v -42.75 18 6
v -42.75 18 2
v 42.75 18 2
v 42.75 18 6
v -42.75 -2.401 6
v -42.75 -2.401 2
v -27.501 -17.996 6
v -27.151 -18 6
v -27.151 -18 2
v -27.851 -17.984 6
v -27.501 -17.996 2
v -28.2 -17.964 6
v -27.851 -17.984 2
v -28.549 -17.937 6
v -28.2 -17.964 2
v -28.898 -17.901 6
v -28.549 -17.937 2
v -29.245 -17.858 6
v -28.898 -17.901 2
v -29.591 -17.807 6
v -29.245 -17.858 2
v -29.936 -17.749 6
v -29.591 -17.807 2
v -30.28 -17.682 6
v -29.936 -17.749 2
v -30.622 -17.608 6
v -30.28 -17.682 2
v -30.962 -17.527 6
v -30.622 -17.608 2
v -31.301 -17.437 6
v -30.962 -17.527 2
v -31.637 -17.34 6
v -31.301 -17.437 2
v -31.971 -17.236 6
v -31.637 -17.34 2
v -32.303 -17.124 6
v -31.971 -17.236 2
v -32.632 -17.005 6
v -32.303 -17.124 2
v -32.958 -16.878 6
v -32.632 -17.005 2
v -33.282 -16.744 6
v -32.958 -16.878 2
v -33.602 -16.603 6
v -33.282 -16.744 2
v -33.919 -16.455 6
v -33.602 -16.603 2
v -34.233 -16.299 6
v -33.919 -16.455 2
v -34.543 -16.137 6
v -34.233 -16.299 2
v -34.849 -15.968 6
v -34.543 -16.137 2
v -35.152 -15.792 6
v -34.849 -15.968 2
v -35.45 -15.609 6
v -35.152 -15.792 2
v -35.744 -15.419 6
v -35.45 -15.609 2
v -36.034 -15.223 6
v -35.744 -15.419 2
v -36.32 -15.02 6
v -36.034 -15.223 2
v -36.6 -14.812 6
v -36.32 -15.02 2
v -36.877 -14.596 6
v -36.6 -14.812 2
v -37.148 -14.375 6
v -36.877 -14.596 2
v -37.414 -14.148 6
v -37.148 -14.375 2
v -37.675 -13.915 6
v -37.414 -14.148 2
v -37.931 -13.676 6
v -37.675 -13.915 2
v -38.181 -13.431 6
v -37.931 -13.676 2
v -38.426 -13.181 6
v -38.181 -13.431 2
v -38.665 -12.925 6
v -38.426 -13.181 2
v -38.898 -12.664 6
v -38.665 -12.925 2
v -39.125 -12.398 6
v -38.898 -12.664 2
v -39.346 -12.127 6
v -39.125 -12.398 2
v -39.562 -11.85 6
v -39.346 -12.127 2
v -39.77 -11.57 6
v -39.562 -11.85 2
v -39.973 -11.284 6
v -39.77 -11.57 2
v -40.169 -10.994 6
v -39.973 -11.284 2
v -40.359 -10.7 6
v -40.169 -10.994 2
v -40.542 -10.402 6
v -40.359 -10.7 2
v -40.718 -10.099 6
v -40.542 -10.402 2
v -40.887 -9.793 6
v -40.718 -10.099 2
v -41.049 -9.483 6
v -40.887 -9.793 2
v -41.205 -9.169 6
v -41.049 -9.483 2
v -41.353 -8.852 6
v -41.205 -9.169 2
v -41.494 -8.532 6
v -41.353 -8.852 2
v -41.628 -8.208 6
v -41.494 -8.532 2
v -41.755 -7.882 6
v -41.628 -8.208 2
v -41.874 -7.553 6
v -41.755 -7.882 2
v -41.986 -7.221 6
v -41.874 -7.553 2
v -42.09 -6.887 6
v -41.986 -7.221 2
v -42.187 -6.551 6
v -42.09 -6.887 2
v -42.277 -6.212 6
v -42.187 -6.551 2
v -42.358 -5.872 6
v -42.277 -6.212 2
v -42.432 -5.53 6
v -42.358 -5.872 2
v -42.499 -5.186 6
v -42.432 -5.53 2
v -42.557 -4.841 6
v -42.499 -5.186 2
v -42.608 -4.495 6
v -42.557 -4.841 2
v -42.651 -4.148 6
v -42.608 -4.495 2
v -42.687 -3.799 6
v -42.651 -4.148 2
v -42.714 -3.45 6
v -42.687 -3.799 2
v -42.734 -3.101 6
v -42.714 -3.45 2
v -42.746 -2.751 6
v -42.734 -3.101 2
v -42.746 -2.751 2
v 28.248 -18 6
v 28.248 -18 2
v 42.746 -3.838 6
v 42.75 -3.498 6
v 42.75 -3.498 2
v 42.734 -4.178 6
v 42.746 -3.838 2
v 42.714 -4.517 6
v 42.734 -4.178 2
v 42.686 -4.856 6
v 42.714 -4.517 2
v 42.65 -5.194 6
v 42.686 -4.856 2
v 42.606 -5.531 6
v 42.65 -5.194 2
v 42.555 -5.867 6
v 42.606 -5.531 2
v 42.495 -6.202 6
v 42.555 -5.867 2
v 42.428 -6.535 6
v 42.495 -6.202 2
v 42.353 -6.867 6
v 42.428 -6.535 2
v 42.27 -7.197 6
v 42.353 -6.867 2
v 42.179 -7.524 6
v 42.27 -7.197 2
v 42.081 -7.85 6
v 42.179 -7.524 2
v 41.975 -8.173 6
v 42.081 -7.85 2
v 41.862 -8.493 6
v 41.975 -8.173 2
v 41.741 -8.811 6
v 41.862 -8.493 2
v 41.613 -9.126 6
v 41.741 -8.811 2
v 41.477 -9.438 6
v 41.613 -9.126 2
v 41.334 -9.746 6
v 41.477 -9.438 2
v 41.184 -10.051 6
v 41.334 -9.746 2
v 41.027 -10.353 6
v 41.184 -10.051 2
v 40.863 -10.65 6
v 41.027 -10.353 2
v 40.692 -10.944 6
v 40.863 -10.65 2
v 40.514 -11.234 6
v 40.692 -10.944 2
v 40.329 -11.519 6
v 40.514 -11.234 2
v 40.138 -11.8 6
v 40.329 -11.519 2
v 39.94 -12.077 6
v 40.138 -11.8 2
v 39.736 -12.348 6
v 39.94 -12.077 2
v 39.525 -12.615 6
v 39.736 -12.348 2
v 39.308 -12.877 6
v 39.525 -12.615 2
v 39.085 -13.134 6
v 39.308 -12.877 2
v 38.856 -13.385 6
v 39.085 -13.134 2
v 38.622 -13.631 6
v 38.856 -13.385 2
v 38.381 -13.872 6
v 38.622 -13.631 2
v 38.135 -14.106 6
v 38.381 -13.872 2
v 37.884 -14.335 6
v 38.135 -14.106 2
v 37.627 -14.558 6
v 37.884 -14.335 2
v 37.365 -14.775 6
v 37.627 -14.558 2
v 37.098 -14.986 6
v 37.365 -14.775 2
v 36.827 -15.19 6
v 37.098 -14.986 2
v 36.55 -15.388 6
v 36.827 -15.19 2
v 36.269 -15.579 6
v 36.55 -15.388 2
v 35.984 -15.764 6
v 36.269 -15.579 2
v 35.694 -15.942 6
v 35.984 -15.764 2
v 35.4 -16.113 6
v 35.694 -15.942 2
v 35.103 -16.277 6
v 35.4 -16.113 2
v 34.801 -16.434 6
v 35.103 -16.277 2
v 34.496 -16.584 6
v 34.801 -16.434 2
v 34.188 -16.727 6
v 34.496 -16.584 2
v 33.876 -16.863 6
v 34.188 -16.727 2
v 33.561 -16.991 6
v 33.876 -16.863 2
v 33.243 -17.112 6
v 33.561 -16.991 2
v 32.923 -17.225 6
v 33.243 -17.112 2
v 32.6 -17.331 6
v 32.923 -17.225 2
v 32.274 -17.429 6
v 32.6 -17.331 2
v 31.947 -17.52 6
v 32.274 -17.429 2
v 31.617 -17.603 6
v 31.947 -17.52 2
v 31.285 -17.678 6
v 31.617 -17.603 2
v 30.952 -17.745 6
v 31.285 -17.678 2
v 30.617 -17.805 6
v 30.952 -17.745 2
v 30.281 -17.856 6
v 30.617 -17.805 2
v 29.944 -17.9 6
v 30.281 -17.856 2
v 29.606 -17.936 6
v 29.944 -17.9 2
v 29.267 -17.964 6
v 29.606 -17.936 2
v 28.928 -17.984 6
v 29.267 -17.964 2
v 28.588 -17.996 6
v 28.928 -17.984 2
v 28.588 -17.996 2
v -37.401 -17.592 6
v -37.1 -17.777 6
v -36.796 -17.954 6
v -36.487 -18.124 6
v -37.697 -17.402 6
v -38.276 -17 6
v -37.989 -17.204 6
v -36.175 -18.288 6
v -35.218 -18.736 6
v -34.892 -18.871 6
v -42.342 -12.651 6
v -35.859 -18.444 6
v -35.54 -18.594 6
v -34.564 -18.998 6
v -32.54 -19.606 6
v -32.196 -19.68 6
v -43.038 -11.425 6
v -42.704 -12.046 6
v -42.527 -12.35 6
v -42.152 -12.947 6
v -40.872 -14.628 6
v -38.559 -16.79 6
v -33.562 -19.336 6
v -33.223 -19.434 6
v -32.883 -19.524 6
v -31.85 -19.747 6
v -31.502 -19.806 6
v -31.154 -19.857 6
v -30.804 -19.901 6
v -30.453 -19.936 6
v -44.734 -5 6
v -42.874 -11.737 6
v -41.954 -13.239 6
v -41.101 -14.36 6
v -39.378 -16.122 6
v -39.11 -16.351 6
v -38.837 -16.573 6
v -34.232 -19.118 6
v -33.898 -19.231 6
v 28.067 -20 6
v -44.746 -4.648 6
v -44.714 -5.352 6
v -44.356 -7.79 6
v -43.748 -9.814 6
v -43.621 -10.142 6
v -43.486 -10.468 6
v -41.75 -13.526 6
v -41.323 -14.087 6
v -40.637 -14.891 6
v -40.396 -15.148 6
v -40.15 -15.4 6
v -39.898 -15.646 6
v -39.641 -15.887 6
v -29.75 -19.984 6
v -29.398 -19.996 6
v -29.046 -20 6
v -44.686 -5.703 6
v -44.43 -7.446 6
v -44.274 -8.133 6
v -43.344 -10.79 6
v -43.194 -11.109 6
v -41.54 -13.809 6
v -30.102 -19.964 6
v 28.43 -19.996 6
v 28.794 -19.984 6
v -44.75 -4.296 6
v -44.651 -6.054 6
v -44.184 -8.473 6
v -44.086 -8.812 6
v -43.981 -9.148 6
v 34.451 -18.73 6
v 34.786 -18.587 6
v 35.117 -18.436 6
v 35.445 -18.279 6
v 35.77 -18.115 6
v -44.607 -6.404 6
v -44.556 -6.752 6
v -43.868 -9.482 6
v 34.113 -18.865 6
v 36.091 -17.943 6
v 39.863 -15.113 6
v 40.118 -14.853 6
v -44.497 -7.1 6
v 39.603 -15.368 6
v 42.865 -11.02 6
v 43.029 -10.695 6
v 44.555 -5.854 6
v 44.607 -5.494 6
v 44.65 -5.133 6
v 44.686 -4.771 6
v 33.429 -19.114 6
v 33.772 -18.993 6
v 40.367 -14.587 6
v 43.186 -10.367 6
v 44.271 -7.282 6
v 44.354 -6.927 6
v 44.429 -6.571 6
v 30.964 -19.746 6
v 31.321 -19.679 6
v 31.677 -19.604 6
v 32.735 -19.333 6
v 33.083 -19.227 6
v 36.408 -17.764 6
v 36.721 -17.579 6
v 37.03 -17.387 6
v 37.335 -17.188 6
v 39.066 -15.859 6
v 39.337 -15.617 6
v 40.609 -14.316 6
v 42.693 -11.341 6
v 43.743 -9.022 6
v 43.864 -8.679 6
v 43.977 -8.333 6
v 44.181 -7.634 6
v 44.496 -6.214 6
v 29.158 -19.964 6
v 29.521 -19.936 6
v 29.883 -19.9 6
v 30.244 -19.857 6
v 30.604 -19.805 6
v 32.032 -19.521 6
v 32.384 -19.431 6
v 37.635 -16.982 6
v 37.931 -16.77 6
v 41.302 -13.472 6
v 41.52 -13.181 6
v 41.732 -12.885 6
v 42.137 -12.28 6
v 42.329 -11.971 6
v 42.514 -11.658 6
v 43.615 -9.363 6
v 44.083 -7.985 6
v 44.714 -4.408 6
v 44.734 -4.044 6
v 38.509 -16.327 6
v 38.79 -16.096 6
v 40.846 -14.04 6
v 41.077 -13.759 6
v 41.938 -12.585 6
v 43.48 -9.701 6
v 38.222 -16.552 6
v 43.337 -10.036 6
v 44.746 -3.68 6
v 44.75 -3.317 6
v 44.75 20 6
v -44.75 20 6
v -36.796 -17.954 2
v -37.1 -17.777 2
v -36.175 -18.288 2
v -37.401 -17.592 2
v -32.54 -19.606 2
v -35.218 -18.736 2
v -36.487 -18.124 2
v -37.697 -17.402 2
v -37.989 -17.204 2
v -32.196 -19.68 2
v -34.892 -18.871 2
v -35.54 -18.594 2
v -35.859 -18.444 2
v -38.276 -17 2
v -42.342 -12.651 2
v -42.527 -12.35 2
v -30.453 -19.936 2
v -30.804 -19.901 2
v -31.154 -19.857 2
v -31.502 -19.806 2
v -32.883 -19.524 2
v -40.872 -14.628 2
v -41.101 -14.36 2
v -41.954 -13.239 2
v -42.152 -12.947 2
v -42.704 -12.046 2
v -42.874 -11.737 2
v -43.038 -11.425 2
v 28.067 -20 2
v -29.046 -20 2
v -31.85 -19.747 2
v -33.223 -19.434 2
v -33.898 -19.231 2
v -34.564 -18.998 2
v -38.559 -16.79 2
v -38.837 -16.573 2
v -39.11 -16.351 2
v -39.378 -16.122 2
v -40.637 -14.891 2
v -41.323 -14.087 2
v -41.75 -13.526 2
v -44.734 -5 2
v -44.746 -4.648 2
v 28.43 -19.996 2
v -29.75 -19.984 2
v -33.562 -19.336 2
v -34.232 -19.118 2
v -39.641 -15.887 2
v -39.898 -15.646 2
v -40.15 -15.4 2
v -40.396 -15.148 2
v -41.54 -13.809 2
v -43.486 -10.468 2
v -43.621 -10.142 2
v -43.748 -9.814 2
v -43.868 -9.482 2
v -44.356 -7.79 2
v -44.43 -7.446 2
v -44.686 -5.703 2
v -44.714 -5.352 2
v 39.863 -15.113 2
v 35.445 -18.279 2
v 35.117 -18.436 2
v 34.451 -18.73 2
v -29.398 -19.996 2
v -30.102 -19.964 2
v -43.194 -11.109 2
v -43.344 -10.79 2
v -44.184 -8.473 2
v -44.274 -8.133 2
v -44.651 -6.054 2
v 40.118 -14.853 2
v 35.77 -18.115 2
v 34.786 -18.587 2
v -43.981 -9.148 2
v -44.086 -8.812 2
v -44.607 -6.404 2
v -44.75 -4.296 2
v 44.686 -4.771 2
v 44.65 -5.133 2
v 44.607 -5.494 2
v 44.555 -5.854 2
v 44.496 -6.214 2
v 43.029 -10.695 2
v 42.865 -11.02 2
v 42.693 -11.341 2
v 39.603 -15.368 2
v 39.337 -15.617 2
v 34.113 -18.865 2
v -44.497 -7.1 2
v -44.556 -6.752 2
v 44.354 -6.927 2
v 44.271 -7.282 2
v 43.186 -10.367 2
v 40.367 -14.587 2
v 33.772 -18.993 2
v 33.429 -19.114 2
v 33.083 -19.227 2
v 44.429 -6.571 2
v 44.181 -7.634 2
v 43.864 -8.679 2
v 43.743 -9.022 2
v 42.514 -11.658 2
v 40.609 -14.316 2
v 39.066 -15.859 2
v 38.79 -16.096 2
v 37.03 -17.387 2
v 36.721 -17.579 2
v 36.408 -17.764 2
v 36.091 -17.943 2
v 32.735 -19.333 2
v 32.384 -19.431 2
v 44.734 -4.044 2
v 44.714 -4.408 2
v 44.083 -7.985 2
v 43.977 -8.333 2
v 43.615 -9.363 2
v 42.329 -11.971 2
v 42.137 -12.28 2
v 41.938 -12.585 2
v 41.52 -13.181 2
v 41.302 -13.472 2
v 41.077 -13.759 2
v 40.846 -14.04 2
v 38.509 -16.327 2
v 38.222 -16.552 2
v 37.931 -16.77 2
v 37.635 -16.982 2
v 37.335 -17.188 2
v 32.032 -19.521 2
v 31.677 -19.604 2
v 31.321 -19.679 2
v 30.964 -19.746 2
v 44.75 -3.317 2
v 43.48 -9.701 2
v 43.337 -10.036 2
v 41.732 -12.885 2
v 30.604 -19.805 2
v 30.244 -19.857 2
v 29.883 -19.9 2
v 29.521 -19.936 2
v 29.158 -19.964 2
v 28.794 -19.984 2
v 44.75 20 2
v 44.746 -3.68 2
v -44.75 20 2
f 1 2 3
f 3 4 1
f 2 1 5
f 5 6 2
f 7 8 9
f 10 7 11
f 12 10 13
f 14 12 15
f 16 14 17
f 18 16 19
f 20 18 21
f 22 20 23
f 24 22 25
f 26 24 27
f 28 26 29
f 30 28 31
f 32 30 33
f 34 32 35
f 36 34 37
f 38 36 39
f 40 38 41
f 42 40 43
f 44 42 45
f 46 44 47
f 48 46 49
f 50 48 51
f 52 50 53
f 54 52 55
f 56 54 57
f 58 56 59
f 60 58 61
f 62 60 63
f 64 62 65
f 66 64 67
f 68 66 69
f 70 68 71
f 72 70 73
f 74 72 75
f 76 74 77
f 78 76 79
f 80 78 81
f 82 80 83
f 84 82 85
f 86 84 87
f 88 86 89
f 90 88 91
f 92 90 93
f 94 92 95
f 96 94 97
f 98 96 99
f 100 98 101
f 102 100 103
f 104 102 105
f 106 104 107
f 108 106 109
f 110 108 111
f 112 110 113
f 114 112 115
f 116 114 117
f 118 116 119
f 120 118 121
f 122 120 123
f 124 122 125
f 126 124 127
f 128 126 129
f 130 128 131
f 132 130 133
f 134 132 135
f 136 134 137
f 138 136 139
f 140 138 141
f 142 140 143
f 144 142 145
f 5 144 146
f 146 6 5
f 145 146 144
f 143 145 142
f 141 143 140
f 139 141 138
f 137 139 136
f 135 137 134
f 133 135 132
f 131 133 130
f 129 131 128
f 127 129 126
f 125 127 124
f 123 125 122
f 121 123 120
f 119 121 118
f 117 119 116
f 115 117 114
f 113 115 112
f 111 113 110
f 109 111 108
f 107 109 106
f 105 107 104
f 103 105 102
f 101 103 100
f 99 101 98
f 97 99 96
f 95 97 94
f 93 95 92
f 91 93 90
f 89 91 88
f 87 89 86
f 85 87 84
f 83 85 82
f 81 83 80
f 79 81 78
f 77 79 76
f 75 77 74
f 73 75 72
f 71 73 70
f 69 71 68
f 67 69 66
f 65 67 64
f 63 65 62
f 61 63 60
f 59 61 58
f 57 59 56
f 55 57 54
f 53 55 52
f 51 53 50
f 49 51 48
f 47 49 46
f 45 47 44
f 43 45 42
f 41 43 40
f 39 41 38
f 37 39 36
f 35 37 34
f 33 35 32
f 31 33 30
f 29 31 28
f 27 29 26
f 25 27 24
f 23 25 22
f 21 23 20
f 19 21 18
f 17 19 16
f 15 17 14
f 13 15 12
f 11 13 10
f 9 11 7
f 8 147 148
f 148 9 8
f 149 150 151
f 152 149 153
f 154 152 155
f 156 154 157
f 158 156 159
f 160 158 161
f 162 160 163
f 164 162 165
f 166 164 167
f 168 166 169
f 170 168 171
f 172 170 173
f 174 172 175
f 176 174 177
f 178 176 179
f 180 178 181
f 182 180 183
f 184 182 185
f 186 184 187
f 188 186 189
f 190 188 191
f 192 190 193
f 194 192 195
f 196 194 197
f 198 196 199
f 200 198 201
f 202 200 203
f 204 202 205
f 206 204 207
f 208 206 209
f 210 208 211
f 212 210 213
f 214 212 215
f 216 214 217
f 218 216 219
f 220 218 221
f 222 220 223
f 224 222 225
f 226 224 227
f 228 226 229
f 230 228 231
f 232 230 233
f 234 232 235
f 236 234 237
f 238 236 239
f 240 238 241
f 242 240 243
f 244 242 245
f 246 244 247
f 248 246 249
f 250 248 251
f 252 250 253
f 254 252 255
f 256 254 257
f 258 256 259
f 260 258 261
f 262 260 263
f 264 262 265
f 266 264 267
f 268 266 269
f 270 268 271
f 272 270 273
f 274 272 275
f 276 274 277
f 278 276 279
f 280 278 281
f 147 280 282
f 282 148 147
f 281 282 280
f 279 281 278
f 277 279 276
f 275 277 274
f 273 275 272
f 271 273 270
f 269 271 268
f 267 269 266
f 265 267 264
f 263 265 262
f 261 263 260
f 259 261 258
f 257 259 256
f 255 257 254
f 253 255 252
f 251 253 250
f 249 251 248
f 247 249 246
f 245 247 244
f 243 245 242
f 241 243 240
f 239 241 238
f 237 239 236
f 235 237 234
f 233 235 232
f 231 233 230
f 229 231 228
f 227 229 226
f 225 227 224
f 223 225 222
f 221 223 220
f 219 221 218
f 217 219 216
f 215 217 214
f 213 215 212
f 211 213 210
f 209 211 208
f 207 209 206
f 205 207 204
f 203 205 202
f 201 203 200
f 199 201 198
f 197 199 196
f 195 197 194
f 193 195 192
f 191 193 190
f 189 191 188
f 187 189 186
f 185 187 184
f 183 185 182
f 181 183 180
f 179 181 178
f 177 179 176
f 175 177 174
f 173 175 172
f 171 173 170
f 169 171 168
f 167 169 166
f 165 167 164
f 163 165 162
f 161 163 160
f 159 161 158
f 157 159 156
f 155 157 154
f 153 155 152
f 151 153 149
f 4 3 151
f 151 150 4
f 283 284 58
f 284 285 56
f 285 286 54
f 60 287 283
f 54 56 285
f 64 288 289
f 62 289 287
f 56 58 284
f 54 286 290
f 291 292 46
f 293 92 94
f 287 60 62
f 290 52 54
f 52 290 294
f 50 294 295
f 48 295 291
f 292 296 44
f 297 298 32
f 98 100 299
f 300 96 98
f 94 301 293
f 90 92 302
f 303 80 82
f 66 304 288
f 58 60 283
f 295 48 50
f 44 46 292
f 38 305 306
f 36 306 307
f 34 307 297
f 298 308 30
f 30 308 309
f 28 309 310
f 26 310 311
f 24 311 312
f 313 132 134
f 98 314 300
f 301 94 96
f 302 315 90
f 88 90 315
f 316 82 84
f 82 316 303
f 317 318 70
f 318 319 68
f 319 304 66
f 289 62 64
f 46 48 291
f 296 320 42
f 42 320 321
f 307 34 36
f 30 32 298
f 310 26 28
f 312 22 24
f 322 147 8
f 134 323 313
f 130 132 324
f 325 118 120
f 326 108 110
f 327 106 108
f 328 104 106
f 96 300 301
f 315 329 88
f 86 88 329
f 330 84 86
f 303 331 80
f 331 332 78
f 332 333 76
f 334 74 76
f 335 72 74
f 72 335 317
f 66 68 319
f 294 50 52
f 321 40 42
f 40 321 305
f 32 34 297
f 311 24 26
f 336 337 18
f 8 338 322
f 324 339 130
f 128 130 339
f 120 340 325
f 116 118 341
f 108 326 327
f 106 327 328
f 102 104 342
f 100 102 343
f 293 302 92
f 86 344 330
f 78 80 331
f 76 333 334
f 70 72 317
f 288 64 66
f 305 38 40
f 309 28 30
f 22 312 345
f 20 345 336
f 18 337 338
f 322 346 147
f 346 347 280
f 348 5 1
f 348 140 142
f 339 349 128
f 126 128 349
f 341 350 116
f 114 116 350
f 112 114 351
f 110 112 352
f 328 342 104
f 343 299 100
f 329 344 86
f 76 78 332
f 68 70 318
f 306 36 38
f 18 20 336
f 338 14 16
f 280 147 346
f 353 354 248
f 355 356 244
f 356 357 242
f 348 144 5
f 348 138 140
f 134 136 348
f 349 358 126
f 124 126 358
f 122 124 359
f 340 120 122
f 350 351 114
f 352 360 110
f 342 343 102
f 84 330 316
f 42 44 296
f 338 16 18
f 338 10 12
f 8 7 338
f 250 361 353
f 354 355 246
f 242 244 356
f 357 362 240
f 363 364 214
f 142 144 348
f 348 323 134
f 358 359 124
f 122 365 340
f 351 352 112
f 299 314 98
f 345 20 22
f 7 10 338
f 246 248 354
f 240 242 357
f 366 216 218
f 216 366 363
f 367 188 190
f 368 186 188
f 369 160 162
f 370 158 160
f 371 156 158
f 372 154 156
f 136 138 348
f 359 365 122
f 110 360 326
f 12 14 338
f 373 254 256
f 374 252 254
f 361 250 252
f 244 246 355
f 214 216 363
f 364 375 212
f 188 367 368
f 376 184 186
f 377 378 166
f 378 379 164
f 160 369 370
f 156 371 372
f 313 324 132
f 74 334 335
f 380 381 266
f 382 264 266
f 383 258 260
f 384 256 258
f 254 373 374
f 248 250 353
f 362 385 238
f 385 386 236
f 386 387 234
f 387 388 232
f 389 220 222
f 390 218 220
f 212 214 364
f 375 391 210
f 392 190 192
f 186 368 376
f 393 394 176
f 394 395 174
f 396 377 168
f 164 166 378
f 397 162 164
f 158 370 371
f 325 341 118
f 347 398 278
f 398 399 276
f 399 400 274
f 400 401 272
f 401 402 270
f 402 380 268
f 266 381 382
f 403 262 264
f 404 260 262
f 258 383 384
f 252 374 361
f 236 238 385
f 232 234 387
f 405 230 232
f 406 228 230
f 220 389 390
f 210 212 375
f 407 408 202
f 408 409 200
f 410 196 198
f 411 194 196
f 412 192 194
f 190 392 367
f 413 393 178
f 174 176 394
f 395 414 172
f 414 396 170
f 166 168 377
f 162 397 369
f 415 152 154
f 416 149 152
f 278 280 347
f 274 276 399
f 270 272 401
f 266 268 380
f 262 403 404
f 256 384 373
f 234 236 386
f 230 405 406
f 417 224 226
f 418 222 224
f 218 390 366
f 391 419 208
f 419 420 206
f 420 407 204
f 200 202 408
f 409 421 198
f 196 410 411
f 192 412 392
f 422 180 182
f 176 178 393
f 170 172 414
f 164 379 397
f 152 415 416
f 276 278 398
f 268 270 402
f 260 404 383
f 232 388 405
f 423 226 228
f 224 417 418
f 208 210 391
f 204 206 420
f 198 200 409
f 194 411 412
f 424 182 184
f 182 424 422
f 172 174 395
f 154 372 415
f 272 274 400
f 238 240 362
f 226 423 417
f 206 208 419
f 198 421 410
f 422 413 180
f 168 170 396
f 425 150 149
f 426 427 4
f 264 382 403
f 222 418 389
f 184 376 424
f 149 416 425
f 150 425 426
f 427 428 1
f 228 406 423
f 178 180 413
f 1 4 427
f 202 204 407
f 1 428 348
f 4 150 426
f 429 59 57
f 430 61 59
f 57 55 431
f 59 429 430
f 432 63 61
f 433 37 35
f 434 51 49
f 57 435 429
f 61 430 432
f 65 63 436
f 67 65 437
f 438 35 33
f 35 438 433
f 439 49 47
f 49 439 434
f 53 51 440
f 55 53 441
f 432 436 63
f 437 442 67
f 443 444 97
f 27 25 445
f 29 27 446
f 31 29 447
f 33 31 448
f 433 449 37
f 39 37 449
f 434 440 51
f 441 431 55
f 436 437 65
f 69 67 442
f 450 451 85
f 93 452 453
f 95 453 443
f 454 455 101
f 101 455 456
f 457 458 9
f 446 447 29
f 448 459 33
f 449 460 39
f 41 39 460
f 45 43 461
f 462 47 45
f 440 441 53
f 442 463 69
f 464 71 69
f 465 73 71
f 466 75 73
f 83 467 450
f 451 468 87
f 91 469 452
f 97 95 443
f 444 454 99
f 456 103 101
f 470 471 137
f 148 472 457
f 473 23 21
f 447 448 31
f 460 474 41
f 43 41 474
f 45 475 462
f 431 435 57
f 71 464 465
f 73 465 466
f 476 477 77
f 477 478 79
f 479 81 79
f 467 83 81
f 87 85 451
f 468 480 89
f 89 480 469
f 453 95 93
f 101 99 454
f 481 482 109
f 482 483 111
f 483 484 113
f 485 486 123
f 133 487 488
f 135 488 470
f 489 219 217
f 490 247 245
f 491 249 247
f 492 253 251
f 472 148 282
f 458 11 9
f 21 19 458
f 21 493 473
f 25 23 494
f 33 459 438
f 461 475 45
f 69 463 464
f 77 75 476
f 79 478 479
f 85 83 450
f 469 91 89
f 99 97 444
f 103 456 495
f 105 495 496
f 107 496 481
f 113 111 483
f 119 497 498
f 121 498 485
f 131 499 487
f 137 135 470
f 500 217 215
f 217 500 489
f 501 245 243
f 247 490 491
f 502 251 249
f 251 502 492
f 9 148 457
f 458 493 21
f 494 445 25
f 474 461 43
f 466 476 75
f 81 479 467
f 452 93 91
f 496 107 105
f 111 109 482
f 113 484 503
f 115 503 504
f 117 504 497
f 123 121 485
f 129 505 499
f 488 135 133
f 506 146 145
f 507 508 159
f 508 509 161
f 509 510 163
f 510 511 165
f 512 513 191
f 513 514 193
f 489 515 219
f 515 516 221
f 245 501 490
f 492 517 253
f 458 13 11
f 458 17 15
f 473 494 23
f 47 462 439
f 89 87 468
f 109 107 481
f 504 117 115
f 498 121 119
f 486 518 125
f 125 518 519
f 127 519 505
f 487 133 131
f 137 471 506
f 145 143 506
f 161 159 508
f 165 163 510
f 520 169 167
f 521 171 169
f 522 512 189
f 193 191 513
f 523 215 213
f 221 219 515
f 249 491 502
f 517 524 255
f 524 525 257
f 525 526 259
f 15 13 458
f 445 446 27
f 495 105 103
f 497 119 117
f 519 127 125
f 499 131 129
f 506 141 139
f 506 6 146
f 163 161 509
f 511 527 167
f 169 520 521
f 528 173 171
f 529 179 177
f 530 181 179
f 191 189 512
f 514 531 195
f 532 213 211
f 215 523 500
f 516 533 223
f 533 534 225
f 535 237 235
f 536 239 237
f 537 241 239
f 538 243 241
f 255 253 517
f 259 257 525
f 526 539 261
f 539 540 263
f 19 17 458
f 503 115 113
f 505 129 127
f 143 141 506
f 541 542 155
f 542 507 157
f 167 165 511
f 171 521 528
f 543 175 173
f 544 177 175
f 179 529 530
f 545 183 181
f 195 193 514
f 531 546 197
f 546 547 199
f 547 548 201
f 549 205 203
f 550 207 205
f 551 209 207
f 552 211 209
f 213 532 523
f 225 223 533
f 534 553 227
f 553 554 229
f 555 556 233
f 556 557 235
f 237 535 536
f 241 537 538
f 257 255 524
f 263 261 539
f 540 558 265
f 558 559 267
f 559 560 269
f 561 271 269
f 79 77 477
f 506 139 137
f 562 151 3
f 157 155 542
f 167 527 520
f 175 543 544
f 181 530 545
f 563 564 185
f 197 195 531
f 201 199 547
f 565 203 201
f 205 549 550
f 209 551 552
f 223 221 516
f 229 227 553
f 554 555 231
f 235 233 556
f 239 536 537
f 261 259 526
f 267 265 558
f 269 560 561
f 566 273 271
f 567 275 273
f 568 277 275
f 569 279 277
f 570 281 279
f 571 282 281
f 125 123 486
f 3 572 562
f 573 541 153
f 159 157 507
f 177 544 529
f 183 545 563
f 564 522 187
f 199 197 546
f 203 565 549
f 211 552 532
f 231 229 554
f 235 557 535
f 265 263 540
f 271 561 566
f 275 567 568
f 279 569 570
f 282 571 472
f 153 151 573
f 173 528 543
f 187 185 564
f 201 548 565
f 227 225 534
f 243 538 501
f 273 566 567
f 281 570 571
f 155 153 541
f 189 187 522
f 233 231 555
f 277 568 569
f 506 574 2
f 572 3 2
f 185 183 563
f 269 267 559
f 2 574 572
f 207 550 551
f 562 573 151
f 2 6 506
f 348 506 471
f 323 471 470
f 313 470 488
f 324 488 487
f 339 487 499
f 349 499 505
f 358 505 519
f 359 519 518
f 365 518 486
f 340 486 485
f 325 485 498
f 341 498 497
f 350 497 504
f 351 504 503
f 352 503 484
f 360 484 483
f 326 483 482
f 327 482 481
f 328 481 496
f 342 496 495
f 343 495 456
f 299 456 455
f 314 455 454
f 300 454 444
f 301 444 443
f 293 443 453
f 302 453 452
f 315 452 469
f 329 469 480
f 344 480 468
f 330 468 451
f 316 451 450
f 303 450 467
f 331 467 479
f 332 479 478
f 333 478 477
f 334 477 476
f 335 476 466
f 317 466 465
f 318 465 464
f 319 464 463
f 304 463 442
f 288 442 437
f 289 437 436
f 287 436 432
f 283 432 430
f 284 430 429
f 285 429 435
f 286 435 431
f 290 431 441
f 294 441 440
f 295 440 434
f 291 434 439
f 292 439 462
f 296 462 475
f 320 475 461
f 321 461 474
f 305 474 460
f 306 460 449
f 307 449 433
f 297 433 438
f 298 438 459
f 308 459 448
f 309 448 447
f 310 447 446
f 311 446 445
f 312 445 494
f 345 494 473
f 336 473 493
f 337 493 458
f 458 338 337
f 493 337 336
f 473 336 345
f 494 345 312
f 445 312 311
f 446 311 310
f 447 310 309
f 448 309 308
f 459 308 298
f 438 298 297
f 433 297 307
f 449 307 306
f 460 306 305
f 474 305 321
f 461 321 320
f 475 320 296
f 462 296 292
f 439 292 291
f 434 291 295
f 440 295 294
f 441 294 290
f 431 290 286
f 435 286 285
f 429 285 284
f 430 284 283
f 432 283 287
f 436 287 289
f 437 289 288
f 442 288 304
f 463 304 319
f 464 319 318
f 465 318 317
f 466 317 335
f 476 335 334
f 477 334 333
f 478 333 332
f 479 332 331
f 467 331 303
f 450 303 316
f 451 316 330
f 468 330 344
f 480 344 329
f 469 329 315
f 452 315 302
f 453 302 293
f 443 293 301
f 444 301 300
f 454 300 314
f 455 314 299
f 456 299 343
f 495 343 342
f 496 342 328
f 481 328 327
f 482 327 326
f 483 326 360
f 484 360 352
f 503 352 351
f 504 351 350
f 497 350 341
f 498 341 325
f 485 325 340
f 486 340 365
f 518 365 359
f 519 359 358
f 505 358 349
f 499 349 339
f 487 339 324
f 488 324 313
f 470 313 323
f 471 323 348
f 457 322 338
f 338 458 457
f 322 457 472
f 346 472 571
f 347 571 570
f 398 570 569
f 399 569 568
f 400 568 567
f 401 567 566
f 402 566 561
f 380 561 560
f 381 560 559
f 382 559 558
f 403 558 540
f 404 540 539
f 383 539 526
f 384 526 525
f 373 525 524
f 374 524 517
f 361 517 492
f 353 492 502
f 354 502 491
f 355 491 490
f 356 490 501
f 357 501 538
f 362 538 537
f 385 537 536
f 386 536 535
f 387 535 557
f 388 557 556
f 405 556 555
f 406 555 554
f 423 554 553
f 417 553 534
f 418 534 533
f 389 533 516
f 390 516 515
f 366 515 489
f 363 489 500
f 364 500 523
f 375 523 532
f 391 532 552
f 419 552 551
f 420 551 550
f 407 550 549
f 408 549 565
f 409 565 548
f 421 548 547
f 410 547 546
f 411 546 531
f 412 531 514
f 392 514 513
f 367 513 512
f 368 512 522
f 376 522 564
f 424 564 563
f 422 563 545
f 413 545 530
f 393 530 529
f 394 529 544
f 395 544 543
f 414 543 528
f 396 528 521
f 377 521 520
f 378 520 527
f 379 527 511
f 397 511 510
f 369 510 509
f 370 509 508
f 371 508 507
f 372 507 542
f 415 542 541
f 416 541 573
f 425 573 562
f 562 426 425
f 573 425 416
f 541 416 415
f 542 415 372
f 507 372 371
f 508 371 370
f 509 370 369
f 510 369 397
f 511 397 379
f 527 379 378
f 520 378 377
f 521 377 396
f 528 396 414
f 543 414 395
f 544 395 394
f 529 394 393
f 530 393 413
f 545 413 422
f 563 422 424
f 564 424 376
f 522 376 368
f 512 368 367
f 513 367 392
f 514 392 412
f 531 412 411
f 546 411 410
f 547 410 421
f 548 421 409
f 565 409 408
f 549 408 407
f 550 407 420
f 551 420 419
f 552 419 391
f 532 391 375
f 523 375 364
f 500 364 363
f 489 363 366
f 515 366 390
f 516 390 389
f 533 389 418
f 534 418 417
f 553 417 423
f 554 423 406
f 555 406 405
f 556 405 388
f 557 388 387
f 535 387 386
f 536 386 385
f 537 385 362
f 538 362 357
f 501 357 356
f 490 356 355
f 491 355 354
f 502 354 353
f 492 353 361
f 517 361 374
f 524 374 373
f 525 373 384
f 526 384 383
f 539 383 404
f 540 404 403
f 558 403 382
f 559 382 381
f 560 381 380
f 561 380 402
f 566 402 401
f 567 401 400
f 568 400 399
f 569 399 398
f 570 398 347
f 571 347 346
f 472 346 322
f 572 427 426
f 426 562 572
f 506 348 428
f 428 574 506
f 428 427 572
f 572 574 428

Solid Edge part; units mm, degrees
sketch "Sketch1" plane through (0, 0, 0) normal (0, 0, 1) x (1, 0, 0)
  line L0 (16.5705, -15) -> (27, -15)
  line L1 (39.75, -3) -> (35.75, -3)
  line L2 (39.75, 15) -> (39.75, -3)
  line L3 (39.75, 15) -> (-39.75, 15)
  line L4 (-39.75, 15) -> (-39.75, -3)
  line L5 (-39.75, -3) -> (-35.75, -3)
  line L6 (-27, -15) -> (-16.5705, -15)
  arc A0 (-11.0552, -11) -> (-16.5705, -15) centre (-21.7852, -2.0075) cw
  line L7 (-11.0552, -11) -> (-2.25, -11)
  line L8 (-2.25, -8.75) -> (-2.25, -11)
  line L9 (2.25, -8.75) -> (2.25, -11)
  line L10 (2.25, -11) -> (11.0552, -11)
  arc A1 (16.5705, -15) -> (11.0552, -11) centre (21.7852, -2.0075) cw
  arc A2 (27, -15) -> (35.75, -3) centre (21.7852, -2.0075) ccw
  arc A3 (-35.75, -3) -> (-27, -15) centre (-21.7852, -2.0075) ccw
  arc A4 (-2.25, -8.75) -> (2.25, -8.75) centre (0, -8.75) cw
  circle A5 centre (37.25, 2.5) radius 1
  circle A6 centre (-37.25, 2.5) radius 1
  circle A7 centre (-5.25, -6) radius 1
  circle A8 centre (5.25, -6) radius 1
extrude "Protrusion1" add sketch "Sketch1" along normal blind 1
sketch "Sketch2" plane through (0, 0, 0) normal (0, 0, 1) x (1, 0, 0)
  circle A0 centre (-5.25, -6) radius 1
  circle A1 centre (5.25, -6) radius 1
  circle A2 centre (37.25, 2.5) radius 1
  line L0 (42.75, -3) -> (42.75, 18)
  line L1 (42.75, 18) -> (-42.75, 18)
  line L2 (-42.75, 18) -> (-42.75, -2.0075)
  line L3 (-42.75, -2.4017) -> (-42.75, -2.0075)
  arc A3 (-42.75, -2.4017) -> (-27.1517, -18) centre (-27.1517, -2.4017) ccw
  line L4 (-21.7852, -18) -> (-27.1517, -18)
  line L5 (-21.7852, -18) -> (28.2486, -18)
  arc A4 (28.2486, -18) -> (42.75, -3.4986) centre (28.2486, -3.4986) ccw
  line L6 (42.75, -3.4986) -> (42.75, -3)
  line L7 (44.75, 20) -> (-44.75, 20)
  line L8 (-44.75, 20) -> (-44.75, -2.0075)
  line L9 (-44.75, -2.0075) -> (-44.75, -4.2962)
  arc A5 (-44.75, -4.2962) -> (-29.0462, -20) centre (-29.0462, -4.2962) ccw
  line L10 (-29.0462, -20) -> (-21.7852, -20)
  line L11 (-21.7852, -20) -> (28.0671, -20)
  arc A6 (28.0671, -20) -> (44.75, -3.3171) centre (28.0671, -3.3171) ccw
  line L12 (44.75, -3.3171) -> (44.75, -3)
  line L13 (44.75, -3) -> (44.75, 20)
  circle A7 centre (-37.25, 2.5) radius 1
  circle A8 centre (-5.25, -6) radius 3
  circle A9 centre (-37.25, 2.5) radius 3
  circle A10 centre (5.25, -6) radius 3
  circle A11 centre (37.25, 2.5) radius 3
extrude "ExtrudedProtrusion_2" add sketch "Sketch2" against normal blind 4
sketch "Sketch3" plane through (0, 0, -4) normal (0, 0, -1) x (1, 0, 0)
  line L0 (28.0671, 20) -> (-29.0462, 20)
  arc A0 (-29.0462, 20) -> (-44.75, 4.2962) centre (-29.0462, 4.2962) ccw
  line L1 (-44.75, 4.2962) -> (-44.75, -20)
  line L2 (-44.75, -20) -> (44.75, -20)
  line L3 (44.75, -20) -> (44.75, 3.3171)
  arc A1 (28.0671, 20) -> (44.75, 3.3171) centre (28.0671, 3.3171) cw
extrude "ExtrudedProtrusion_3" add sketch "Sketch3" along normal blind 2
sketch "Sketch4" plane through (0, 0, 0) normal (0, 0, 1) x (1, 0, 0)
  line L0 (-44.75, 20) -> (44.75, 20)
  line L1 (44.75, 20) -> (44.75, -3.3171)
  arc A0 (28.0671, -20) -> (44.75, -3.3171) centre (28.0671, -3.3171) ccw
  line L2 (28.0671, -20) -> (-29.0462, -20)
  arc A1 (-44.75, -4.2962) -> (-29.0462, -20) centre (-29.0462, -4.2962) ccw
  line L3 (-44.75, -4.2962) -> (-44.75, 20)
  line L4 (-42.75, 18) -> (42.75, 18)
  line L5 (42.75, 18) -> (42.75, -3.4986)
  arc A2 (28.2486, -18) -> (42.75, -3.4986) centre (28.2486, -3.4986) ccw
  line L6 (28.2486, -18) -> (-27.1517, -18)
  arc A3 (-42.75, -2.4017) -> (-27.1517, -18) centre (-27.1517, -2.4017) ccw
  line L7 (-42.75, -2.4017) -> (-42.75, 18)
extrude "ExtrudedProtrusion_4" add sketch "Sketch4" along normal blind 14
fillet "Round_1" radius 4 6 edges at (38.5026, -13.7526, -4) (-38.1814, -13.4314, -4) (0.5484, -18, -4) (42.75, 7.2507, -4) (0, 18, -4) (-42.75, 7.7992, -4)
fillet "Round_2" radius 8 5 edges at (-0.4896, -20, -6) (-40.1505, -15.4005, -6) (-44.75, 7.8519, -6) (44.75, 8.3415, -6) (39.8637, -15.1137, -6)
sketch "Sketch5" plane through (0, 0, 14) normal (0, 0, 1) x (1, 0, 0)
  line L0 (-44.75, 20) -> (44.75, 20)
  line L1 (44.75, 20) -> (44.75, -3.3171)
  arc A0 (28.0671, -20) -> (44.75, -3.3171) centre (28.0671, -3.3171) ccw
  line L2 (-29.0462, -20) -> (28.0671, -20)
  arc A1 (-44.75, -4.2962) -> (-29.0462, -20) centre (-29.0462, -4.2962) ccw
  line L3 (-44.75, -4.2962) -> (-44.75, -3.3171)
  line L4 (-44.75, -3.3171) -> (-44.75, 20)
  circle A2 centre (-21.7852, -2.0075) radius 12
  circle A3 centre (21.7852, -2.0075) radius 12
extrude "ExtrudedProtrusion_5" add sketch "Sketch5" along normal blind 2
fillet "Round_5" radius 2 5 edges at (-38.1814, -13.4314, 14) (-42.75, 7.7992, 14) (0.5484, -18, 14) (38.5026, -13.7526, 14) (42.75, 7.2507, 14)
sketch "Sketch6" plane through (0, 0, 1) normal (0, 0, 1) x (0, -1, 0)
  line L0 (37.005, -48.7857) -> (-37.005, -48.7857)
  line L1 (-37.005, -48.7857) -> (-37.005, 48.7857)
  line L2 (-37.005, 48.7857) -> (37.005, 48.7857)
  line L3 (37.005, 48.7857) -> (37.005, -48.7857)
extrude "ExtrudedCutout_2" cut sketch "Sketch6" along normal blind 0.5
sketch "Sketch7" plane through (0, 2, 16) normal (0, 0, 1) x (1, 0, 0)
  line L0 (48.422, -25.3471) -> (-48.422, -25.3471)
  line L1 (-48.422, -25.3471) -> (-48.422, 21.3471)
  line L2 (-48.422, 21.3471) -> (48.422, 21.3471)
  line L3 (48.422, 21.3471) -> (48.422, -25.3471)
extrude "ExtrudedCutout_7" cut sketch "Sketch7" against normal blind 10
sketch "Sketch8" plane through (0, 4, -6) normal (0, 0, -1) x (1, 0, 0)
  line L0 (50.3879, -23.0296) -> (-50.3879, -23.0296)
  line L1 (-50.3879, -23.0296) -> (-50.3879, 31.0296)
  line L2 (-50.3879, 31.0296) -> (50.3879, 31.0296)
  line L3 (50.3879, 31.0296) -> (50.3879, -23.0296)
extrude "Cutout1" cut sketch "Sketch8" against normal up to vertex (8 mm away)
